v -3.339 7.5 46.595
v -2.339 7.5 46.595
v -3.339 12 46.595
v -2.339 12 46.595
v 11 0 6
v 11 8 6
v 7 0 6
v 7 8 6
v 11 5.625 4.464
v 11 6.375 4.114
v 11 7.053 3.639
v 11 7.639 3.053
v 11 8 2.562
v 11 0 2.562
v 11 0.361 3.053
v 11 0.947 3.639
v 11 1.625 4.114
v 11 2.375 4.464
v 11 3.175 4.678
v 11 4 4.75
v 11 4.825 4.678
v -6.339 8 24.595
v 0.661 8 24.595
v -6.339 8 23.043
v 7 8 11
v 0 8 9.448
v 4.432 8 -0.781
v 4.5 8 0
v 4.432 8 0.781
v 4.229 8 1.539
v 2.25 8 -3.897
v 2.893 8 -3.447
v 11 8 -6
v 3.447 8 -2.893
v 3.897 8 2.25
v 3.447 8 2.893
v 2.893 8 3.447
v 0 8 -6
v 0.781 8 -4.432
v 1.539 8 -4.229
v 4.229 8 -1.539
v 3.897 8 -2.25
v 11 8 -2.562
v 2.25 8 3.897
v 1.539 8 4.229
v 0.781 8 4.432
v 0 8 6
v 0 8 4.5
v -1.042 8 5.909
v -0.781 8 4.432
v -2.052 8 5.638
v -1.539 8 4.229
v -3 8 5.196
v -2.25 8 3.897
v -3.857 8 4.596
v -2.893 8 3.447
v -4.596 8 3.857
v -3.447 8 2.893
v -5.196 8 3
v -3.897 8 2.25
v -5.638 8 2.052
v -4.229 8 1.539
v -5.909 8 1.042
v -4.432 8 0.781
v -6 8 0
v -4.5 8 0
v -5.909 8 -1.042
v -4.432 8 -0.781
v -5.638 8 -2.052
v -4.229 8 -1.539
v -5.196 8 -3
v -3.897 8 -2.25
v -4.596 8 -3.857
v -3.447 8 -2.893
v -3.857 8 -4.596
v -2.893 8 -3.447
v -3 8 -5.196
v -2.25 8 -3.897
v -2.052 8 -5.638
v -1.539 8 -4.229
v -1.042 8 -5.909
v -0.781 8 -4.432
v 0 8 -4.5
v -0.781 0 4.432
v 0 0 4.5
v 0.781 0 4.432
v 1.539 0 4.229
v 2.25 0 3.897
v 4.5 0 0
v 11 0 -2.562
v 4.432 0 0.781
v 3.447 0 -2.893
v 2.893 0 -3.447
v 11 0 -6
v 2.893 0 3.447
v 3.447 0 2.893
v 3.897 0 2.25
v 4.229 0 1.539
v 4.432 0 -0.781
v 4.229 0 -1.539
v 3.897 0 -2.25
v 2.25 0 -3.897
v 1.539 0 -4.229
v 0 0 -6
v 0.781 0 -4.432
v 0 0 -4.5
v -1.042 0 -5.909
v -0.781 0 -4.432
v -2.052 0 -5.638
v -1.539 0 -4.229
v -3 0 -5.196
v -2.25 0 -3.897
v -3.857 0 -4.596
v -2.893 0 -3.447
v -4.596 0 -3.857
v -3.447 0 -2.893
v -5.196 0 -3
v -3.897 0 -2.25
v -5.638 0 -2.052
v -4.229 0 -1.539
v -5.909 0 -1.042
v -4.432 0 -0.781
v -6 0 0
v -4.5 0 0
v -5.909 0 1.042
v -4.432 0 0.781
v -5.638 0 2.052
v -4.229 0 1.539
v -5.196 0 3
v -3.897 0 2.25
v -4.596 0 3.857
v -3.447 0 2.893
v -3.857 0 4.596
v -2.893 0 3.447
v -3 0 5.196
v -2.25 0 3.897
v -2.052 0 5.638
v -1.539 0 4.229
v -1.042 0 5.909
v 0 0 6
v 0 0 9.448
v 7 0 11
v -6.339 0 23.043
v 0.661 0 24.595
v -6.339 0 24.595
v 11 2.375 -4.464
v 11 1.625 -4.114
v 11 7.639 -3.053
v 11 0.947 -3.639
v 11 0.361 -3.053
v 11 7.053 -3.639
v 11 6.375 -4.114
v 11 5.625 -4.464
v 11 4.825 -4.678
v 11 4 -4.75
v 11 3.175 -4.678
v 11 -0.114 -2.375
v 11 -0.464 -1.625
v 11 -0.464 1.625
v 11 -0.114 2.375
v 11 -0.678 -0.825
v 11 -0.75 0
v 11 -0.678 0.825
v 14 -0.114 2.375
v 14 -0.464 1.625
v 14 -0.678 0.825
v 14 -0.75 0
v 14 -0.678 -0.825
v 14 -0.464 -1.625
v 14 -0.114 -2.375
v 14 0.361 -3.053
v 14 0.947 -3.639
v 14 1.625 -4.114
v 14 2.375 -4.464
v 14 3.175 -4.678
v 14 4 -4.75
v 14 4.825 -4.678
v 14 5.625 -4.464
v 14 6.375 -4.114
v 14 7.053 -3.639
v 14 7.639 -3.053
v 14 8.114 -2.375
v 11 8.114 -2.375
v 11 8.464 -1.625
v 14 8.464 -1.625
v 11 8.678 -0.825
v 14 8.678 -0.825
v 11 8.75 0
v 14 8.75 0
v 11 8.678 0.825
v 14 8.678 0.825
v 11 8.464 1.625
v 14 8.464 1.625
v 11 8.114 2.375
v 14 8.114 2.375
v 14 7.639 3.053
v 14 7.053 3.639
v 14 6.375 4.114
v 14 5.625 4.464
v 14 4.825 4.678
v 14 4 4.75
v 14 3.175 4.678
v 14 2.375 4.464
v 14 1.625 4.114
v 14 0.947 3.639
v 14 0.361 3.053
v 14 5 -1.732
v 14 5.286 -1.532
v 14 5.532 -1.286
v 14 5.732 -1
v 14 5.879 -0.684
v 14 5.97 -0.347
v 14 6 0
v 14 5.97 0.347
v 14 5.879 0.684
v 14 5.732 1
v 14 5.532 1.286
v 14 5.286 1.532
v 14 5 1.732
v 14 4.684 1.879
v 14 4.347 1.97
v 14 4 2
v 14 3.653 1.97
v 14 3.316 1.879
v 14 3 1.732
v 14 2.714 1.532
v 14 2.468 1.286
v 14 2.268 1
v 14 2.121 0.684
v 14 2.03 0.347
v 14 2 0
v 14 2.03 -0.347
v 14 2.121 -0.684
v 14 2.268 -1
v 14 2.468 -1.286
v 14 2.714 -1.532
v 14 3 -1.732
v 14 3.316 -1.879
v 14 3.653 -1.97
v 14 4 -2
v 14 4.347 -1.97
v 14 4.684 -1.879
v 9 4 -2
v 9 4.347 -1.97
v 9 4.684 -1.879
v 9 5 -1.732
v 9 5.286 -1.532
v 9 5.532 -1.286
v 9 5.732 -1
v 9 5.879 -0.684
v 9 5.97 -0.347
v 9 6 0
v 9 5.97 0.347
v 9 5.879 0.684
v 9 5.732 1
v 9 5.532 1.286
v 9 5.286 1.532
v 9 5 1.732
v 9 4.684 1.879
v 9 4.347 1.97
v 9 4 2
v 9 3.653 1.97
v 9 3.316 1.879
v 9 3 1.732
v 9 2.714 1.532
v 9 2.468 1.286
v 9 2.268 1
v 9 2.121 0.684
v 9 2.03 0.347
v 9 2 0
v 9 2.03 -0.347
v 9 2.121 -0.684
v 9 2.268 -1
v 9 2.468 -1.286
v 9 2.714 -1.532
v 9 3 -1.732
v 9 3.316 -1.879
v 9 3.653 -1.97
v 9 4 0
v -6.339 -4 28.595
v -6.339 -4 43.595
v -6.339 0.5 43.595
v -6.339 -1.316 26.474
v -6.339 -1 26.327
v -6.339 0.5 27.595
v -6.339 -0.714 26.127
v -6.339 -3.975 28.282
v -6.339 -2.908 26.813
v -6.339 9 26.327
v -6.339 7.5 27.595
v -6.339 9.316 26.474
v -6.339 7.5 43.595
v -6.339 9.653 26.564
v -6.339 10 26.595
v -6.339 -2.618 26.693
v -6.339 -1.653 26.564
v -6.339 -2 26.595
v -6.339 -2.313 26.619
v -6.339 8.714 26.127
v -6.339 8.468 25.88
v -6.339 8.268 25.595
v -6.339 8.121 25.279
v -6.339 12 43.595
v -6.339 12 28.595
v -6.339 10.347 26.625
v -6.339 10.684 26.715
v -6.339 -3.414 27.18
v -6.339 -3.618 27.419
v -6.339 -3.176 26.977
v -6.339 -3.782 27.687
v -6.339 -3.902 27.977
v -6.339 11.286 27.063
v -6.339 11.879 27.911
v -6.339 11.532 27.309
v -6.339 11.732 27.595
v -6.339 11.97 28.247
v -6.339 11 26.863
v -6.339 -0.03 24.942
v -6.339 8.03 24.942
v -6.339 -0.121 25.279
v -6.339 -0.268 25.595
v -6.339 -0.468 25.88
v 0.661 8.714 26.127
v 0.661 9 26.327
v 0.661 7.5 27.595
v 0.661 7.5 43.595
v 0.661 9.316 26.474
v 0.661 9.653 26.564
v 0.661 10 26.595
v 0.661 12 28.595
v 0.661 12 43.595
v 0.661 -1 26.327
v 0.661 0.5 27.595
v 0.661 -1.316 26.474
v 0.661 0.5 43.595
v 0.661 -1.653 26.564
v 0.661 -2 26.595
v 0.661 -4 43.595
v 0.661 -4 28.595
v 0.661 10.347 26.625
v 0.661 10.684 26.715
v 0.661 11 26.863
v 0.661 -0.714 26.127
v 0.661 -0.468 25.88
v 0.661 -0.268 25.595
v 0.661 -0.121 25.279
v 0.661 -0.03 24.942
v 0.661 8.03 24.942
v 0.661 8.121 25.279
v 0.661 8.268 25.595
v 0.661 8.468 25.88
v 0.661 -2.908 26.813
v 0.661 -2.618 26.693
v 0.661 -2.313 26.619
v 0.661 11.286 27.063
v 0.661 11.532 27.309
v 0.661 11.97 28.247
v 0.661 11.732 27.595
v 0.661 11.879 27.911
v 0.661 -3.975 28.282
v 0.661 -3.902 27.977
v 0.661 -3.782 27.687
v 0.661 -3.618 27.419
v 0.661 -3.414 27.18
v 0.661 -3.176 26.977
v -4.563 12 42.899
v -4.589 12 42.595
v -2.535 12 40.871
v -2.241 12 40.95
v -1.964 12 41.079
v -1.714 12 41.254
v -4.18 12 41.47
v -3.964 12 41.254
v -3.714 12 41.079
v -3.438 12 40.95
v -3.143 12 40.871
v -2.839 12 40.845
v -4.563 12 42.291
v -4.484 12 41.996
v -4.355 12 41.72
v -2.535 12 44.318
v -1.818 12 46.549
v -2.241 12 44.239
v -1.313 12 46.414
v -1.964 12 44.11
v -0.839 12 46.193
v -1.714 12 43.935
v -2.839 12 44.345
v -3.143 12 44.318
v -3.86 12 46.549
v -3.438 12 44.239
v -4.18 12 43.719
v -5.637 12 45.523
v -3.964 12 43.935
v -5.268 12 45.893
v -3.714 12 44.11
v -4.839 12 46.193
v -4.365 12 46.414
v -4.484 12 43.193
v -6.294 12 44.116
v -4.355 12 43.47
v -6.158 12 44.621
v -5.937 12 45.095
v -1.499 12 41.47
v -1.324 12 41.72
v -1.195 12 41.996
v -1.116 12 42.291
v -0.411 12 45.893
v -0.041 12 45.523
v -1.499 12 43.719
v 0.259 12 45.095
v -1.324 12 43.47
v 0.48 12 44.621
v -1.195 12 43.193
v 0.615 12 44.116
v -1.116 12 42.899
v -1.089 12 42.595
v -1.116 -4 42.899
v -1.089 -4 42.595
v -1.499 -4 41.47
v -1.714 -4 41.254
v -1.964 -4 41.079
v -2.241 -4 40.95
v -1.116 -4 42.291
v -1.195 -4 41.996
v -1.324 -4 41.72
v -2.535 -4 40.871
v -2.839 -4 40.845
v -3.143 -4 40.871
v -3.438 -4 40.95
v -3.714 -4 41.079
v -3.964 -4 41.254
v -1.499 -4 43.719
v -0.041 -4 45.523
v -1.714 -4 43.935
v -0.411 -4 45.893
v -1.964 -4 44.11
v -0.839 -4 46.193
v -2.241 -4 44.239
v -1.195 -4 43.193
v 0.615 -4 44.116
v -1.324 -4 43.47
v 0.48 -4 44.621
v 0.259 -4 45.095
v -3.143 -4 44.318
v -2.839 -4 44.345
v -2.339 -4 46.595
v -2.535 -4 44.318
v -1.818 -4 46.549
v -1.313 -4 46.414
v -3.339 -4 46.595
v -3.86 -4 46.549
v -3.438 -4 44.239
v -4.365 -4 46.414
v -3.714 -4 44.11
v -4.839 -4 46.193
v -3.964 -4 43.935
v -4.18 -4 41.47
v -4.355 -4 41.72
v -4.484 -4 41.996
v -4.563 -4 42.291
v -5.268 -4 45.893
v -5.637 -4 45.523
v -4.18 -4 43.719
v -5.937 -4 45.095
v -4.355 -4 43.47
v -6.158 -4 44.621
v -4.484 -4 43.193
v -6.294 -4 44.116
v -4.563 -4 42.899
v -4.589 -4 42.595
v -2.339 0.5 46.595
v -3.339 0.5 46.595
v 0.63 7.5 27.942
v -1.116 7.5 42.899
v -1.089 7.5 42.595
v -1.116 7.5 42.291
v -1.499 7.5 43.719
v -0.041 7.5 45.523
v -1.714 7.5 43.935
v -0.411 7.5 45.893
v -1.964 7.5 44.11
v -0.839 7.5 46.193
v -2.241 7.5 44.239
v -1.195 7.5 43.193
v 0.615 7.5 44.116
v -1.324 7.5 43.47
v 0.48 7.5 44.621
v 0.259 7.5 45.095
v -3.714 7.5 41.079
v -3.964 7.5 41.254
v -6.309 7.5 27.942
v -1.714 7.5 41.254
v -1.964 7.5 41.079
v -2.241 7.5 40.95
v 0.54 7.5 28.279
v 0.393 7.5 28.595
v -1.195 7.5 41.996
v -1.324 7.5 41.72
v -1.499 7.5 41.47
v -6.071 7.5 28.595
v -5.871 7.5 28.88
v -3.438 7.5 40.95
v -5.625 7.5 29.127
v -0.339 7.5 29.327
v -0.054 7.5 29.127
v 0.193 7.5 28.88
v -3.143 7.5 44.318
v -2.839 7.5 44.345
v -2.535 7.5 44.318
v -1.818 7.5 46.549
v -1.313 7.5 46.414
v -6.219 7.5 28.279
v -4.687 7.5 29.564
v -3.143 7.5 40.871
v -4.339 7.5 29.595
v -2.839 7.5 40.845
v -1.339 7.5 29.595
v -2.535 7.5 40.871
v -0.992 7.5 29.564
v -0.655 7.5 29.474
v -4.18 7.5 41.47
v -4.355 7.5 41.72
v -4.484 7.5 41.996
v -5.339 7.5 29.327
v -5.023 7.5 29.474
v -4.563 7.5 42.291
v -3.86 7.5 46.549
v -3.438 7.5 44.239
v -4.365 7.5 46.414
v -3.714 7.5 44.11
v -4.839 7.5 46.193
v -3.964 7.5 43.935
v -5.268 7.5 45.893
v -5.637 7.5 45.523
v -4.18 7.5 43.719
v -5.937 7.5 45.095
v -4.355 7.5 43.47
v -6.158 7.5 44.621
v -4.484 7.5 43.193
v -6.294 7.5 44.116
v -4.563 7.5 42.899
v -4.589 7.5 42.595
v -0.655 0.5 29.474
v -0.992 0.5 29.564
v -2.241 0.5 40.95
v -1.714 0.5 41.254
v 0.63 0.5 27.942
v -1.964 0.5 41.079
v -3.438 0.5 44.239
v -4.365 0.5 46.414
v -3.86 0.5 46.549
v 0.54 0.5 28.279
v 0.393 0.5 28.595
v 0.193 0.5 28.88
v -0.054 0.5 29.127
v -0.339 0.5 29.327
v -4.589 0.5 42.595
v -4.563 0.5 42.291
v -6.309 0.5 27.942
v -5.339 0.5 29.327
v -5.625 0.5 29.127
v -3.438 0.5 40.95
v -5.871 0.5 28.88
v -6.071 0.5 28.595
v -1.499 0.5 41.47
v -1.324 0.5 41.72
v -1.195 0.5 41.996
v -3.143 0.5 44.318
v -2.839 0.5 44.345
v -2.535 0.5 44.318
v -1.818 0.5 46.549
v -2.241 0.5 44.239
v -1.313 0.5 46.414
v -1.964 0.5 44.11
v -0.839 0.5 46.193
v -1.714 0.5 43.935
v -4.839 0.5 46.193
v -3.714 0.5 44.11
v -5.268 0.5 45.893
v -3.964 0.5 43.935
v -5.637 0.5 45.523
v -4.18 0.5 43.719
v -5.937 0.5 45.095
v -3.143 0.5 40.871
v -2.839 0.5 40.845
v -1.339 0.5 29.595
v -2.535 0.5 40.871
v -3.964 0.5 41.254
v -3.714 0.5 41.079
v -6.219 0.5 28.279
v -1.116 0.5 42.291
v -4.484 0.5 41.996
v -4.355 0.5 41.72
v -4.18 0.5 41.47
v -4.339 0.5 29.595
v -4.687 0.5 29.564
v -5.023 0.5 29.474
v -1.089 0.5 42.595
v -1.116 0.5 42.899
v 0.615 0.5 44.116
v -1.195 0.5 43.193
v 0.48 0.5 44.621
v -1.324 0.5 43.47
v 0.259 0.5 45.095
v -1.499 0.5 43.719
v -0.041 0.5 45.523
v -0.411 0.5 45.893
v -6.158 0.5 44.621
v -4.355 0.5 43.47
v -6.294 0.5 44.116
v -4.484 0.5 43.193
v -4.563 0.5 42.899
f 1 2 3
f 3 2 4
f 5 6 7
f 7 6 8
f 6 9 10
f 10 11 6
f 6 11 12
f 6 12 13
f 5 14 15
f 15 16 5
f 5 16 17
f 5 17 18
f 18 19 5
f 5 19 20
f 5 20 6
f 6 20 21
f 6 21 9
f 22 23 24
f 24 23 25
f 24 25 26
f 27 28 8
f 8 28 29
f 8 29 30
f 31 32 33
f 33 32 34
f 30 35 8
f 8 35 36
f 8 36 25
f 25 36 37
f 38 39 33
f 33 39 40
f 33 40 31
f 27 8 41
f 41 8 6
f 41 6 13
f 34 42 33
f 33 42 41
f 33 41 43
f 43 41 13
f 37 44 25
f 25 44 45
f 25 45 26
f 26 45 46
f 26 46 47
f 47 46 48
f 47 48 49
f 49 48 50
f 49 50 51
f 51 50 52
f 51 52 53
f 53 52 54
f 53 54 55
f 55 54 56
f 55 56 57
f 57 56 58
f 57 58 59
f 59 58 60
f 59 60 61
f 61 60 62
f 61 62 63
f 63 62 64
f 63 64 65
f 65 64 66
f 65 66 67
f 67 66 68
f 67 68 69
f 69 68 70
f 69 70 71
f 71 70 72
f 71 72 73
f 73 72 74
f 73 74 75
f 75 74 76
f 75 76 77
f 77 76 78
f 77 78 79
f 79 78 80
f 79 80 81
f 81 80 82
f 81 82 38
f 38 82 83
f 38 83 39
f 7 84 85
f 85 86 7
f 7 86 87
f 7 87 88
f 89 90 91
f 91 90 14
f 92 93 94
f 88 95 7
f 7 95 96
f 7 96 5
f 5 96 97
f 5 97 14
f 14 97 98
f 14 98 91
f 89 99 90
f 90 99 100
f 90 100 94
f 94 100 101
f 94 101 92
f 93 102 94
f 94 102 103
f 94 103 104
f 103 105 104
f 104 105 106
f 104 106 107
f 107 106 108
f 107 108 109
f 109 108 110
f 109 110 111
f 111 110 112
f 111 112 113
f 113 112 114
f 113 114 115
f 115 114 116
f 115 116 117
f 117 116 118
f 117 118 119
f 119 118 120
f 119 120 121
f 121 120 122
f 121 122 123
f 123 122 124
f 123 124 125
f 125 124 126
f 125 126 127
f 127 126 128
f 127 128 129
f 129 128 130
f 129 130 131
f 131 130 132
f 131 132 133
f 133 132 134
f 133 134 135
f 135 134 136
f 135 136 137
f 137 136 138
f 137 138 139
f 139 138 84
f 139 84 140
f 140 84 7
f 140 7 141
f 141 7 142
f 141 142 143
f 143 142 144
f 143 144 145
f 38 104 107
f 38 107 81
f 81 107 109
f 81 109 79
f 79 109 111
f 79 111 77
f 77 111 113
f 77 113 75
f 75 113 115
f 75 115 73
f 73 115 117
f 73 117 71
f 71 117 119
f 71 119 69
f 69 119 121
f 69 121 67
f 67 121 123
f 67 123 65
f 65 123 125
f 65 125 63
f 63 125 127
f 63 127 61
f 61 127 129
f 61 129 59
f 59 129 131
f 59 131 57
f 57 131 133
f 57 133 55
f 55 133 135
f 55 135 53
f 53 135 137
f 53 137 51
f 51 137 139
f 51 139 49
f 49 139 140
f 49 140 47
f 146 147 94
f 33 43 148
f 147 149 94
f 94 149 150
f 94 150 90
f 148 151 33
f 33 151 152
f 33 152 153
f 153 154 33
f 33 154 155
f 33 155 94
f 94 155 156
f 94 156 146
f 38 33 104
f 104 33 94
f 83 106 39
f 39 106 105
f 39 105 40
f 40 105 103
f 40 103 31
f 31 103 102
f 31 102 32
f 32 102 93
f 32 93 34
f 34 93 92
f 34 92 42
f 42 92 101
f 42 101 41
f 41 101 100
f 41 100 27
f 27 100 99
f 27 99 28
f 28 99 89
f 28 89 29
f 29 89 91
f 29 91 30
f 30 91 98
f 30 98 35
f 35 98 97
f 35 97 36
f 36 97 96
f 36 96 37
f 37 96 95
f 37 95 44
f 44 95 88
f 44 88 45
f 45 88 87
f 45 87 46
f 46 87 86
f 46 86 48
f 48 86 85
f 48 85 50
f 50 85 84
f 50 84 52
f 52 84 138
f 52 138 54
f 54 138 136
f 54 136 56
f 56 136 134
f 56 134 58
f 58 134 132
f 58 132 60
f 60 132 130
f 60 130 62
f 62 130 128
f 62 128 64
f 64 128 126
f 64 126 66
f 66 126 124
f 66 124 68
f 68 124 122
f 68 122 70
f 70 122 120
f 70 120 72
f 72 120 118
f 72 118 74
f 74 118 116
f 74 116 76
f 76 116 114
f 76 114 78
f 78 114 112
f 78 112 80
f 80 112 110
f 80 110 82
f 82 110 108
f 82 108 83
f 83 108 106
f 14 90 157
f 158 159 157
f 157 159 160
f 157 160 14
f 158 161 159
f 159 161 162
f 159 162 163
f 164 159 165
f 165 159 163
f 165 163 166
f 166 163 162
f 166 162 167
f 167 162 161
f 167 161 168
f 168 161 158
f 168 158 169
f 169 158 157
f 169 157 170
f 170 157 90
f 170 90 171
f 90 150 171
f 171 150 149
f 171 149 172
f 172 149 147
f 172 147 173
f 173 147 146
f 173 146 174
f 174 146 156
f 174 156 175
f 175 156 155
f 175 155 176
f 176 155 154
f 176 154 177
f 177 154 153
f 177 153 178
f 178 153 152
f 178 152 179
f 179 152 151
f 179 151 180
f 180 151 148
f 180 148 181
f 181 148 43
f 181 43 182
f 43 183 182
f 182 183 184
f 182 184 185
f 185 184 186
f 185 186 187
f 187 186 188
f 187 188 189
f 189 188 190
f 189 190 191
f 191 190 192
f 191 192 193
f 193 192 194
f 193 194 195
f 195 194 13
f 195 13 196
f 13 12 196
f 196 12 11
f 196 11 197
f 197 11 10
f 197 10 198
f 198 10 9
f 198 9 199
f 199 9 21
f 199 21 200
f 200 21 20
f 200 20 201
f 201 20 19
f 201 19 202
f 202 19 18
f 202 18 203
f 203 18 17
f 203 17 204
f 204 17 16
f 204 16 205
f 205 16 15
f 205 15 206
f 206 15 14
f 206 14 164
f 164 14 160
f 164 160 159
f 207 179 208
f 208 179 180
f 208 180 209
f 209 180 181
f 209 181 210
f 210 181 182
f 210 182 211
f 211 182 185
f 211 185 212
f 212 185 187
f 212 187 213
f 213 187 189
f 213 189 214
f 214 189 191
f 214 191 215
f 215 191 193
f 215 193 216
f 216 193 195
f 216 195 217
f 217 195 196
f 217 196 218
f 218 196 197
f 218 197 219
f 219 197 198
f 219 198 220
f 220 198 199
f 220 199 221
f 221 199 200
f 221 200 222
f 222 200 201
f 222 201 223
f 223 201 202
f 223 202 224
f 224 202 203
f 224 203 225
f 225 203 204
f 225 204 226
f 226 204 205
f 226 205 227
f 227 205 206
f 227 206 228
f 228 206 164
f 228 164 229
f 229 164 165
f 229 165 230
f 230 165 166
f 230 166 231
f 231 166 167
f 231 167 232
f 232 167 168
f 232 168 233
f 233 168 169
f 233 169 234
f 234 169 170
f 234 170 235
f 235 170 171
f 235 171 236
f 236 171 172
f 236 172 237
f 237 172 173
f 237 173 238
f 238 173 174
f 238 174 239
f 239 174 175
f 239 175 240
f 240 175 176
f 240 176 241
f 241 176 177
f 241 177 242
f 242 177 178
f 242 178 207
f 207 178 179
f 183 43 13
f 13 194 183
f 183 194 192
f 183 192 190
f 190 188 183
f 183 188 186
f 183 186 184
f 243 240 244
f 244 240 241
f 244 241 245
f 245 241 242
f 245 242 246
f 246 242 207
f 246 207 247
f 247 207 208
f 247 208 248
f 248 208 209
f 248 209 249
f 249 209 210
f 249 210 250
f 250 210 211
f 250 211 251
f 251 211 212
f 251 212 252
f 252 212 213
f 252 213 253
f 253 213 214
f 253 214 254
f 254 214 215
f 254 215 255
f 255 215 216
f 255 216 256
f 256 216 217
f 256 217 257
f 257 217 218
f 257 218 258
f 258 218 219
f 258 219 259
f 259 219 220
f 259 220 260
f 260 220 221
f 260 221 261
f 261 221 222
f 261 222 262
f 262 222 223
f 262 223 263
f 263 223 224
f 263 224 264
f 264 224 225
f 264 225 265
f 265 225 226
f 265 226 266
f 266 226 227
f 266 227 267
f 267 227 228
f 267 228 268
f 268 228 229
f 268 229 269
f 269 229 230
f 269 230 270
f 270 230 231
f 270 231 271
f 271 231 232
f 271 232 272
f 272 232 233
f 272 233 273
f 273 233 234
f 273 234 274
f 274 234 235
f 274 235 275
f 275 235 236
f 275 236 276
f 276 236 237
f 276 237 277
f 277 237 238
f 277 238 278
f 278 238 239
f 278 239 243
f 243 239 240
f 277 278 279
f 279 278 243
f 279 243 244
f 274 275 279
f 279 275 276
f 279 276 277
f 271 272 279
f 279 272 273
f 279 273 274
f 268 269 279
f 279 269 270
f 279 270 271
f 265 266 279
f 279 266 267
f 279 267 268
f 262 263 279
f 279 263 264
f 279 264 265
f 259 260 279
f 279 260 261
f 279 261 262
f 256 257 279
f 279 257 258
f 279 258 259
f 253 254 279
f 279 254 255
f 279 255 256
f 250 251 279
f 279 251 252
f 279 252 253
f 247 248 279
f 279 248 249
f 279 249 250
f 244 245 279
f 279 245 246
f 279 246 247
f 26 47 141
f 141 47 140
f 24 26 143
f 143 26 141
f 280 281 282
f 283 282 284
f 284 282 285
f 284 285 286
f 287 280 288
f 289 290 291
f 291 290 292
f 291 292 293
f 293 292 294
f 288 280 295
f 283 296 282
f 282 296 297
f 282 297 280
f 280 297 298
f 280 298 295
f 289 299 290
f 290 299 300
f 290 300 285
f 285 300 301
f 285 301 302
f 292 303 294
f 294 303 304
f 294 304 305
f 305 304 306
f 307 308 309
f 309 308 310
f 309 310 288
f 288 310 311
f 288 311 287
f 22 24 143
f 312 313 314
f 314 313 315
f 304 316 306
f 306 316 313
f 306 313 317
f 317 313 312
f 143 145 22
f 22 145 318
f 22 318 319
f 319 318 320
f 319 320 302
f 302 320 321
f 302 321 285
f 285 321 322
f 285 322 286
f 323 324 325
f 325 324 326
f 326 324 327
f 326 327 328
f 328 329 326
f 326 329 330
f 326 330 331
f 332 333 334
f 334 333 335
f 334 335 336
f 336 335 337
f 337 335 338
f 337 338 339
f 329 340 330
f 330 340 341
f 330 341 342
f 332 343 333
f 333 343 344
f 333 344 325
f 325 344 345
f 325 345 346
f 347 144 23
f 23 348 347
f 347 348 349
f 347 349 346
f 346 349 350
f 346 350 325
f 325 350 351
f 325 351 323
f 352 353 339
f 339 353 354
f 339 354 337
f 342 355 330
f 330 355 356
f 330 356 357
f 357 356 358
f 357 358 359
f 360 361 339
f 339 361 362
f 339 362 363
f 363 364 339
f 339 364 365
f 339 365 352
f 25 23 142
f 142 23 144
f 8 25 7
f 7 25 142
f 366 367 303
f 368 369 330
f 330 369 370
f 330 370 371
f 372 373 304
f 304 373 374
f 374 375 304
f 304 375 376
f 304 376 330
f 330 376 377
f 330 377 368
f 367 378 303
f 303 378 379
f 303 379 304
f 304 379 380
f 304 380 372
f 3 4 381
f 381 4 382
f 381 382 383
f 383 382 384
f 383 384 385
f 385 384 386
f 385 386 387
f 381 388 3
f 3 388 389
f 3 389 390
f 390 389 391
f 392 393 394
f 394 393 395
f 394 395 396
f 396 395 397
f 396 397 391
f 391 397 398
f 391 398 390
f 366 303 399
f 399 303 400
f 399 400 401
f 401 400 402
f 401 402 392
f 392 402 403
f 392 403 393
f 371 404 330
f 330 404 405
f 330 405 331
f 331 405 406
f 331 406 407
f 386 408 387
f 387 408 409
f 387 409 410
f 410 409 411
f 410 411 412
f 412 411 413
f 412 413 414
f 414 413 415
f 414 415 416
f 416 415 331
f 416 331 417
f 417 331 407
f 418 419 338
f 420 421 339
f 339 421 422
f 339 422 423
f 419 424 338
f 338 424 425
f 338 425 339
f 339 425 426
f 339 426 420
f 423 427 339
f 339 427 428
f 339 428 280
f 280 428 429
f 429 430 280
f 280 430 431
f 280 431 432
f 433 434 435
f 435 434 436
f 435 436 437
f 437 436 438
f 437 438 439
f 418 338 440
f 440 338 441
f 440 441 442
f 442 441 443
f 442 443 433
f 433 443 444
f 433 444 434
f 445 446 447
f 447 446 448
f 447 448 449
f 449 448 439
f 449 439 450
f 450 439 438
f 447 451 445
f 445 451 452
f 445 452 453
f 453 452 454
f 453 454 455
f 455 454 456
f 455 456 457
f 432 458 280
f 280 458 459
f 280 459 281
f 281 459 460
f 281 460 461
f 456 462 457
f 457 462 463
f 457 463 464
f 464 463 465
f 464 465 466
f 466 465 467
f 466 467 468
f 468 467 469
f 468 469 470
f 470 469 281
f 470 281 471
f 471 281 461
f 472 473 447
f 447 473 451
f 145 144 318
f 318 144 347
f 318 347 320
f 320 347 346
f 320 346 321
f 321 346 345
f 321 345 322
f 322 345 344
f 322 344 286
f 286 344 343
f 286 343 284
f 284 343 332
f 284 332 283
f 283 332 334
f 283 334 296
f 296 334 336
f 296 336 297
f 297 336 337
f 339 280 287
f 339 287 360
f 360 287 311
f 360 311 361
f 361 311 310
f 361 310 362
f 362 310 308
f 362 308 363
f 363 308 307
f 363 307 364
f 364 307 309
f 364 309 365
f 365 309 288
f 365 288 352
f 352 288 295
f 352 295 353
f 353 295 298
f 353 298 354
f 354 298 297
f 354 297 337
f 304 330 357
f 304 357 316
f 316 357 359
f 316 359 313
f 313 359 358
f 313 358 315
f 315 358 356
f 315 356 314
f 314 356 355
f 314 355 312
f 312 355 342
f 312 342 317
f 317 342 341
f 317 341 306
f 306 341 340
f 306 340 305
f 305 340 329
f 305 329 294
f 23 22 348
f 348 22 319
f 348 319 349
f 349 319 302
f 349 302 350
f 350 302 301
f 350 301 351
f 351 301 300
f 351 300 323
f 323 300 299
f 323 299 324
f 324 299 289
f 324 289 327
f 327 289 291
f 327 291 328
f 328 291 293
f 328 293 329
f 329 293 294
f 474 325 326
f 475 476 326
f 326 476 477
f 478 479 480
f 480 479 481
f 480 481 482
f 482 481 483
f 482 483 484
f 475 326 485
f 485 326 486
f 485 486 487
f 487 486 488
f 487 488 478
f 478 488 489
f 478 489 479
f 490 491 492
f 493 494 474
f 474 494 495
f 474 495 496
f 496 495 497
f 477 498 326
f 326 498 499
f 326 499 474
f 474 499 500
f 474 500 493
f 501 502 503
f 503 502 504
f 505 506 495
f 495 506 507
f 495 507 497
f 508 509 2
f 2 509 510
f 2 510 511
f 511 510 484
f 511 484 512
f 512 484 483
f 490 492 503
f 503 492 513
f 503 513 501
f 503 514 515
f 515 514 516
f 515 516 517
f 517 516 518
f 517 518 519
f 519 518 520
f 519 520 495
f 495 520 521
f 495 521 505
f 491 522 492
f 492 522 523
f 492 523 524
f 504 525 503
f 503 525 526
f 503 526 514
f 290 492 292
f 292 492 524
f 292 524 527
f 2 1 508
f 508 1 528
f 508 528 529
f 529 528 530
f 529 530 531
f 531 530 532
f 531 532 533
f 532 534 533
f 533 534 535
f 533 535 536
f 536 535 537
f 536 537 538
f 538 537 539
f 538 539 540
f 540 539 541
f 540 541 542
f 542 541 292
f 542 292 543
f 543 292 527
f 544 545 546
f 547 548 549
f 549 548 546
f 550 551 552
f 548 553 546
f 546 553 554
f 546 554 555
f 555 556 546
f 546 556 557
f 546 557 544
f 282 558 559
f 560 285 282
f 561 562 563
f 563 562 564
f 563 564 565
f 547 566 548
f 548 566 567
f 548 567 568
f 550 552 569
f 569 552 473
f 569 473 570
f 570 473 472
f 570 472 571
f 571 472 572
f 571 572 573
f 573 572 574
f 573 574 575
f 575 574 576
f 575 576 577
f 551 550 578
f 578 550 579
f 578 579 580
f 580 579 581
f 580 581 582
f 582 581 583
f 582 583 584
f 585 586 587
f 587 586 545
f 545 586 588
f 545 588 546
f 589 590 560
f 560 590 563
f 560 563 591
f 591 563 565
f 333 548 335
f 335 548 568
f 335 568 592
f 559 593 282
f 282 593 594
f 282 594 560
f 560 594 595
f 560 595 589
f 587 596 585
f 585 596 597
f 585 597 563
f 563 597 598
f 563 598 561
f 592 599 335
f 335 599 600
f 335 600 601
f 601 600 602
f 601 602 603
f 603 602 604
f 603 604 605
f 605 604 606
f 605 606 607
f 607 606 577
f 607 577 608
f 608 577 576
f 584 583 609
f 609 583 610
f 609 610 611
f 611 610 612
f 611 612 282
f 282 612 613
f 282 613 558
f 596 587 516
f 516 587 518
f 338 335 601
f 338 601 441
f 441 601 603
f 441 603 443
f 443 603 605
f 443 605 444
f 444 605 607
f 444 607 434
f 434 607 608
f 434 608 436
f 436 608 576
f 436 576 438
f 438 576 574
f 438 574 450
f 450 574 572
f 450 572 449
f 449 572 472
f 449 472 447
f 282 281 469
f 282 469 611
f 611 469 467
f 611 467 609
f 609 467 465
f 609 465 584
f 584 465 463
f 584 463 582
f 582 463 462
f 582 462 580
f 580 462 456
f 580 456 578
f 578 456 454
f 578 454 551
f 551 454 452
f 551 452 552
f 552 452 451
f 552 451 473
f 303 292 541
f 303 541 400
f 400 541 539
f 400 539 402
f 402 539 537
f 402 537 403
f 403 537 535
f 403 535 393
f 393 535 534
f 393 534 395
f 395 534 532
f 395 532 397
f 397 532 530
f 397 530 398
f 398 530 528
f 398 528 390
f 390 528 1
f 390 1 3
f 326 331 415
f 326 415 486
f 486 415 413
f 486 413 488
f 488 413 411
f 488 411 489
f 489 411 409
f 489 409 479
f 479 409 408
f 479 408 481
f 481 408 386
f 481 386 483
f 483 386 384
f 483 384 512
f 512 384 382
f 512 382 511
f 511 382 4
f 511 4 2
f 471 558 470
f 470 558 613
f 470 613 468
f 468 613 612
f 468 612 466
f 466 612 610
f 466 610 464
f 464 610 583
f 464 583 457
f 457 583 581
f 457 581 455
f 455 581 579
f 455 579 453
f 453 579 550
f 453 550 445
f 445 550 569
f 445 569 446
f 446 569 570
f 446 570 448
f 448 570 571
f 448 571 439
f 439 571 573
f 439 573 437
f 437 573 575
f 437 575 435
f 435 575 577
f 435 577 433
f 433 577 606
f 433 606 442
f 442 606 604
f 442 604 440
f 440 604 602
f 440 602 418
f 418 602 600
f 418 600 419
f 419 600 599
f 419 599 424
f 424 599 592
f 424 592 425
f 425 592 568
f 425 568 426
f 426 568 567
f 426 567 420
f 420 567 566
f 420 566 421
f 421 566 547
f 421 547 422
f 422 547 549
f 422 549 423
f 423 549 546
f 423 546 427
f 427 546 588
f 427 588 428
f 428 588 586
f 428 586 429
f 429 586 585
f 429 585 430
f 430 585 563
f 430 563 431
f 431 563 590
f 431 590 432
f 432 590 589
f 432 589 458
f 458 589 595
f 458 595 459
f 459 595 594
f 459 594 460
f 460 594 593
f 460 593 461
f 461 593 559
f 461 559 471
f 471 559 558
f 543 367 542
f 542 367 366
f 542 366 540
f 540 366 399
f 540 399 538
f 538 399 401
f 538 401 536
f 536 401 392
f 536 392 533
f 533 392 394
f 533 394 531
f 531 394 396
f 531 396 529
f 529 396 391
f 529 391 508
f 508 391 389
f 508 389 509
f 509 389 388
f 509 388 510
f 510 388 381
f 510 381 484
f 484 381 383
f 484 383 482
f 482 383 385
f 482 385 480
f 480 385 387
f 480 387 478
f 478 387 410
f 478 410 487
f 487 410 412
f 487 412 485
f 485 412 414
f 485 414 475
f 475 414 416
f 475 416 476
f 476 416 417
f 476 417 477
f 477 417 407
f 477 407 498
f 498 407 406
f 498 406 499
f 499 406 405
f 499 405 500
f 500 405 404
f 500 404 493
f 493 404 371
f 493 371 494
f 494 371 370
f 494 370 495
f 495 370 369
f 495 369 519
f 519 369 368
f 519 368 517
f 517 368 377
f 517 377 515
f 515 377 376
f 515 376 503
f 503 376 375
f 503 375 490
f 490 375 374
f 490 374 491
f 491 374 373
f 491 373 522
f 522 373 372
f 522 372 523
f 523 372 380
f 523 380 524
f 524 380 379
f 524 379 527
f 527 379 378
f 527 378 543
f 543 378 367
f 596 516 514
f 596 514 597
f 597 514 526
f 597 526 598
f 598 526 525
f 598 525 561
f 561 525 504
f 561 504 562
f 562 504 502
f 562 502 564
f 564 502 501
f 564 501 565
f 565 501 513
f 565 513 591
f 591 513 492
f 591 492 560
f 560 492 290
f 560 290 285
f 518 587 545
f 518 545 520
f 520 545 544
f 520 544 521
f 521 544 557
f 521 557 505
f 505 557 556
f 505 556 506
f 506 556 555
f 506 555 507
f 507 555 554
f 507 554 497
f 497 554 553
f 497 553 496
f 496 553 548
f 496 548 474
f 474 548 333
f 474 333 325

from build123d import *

# Parameters (mm, degrees)
SKETCH1_R           = 4.5
BOSS_EXTRUDE1_DEPTH = 8
SKETCH2_R           = 4.75
BOSS_EXTRUDE2_DEPTH = 3
SKETCH3_R           = 2
CUT_EXTRUDE1_DEPTH  = 5
BOSS_EXTRUDE3_DEPTH = 8
SKETCH5_W           = 7
SKETCH5_H           = 16
BOSS_EXTRUDE4_DEPTH = 20
FILLET1_START       = -7
FILLET1_DEPTH       = 18
FILLET1_START_2     = -6.339273926
FILLET1_2_DEPTH     = 7
SKETCH6_W           = 7
SKETCH6_H           = 7
CUT_EXTRUDE2_DEPTH  = 17
FILLET2_R           = 3
SKETCH7_R           = 1.75
CUT_EXTRUDE3_DEPTH  = 52.215801422
FILLET3_R           = 2


with BuildPart() as part:
    # Sketch1 → Boss-Extrude1 (new body)
    with BuildSketch(Plane(origin=(0, 0, 0), x_dir=(1, 0, 0), z_dir=(0, 1, 0))):
        with BuildLine():
            Line((0, 6), (11, 6))
            Line((11, 6), (11, -6))
            Line((11, -6), (0, -6))
            ThreePointArc((0, -6), (-6, 0), (0, 6))
        make_face()
        with Locations(Location((0, 0, 0), (0, 0, 270))):
            Circle(SKETCH1_R, mode=Mode.SUBTRACT)
    extrude(amount=BOSS_EXTRUDE1_DEPTH)

    # Sketch2 → Boss-Extrude2 (add)
    with BuildSketch(Plane(origin=(11, 0, 0), x_dir=(0, 0, -1), z_dir=(1, 0, 0))):
        with Locations(Location((0, 4, 0), (0, 0, 122.636897504))):
            Circle(SKETCH2_R)
    extrude(amount=BOSS_EXTRUDE2_DEPTH)

    # Sketch3 → Cut-Extrude1 (cut)
    with BuildSketch(Plane(origin=(14, 0, 0), x_dir=(0, 0, -1), z_dir=(1, 0, 0))):
        with Locations((0, 4)):
            Circle(SKETCH3_R)
    extrude(amount=-CUT_EXTRUDE1_DEPTH, mode=Mode.SUBTRACT)

    # Sketch4 → Boss-Extrude3 (add)
    with BuildSketch(Plane(origin=(0, 0, 0), x_dir=(1, 0, 0), z_dir=(0, 1, 0))):
        Polygon((0, -6), (0, -9.448137361), (-6.339273926, -23.042754167), (-6.339273926, -26.594616806), (0.660726074, -26.594616806), (0.660726074, -24.594616806), (7, -11), (7, -6), align=None)
    extrude(amount=BOSS_EXTRUDE3_DEPTH)

    # Sketch5 → Boss-Extrude4 (add)
    with BuildSketch(Plane.XY.offset(26.594616806)):
        with Locations((-2.839273926, 4)):
            Rectangle(SKETCH5_W, SKETCH5_H)
    extrude(amount=BOSS_EXTRUDE4_DEPTH)

    # Fillet1: read off the stored shape, not the designer's step
    # Fillet1 outline → Fillet1 (cut)
    with BuildSketch(Plane.YZ.offset(FILLET1_START)):
        with BuildLine():
            Line((-4, 26.594616806), (-2, 26.594616806))
            ThreePointArc((-2, 26.594616806), (-3.414213563, 27.180403244), (-4, 28.594616806))
            Line((-4, 28.594616806), (-4, 26.594616806))
        make_face()
        with BuildLine():
            ThreePointArc((12, 28.594616806), (11.414213563, 27.180403244), (10, 26.594616806))
            Line((10, 26.594616806), (12, 26.594616806))
            Line((12, 26.594616806), (12, 28.594616806))
        make_face()
    extrude(amount=FILLET1_DEPTH, mode=Mode.SUBTRACT)

    # Fillet1 2 outline → Fillet1 2 (add)
    with BuildSketch(Plane.YZ.offset(FILLET1_START_2)):
        with BuildLine():
            ThreePointArc((-2, 26.594616806), (-0.585786438, 26.008830368), (0, 24.594616806))
            Line((0, 24.594616806), (0, 26.594616806))
            Line((0, 26.594616806), (-2, 26.594616806))
        make_face()
        with BuildLine():
            ThreePointArc((8, 24.594616806), (8.585786438, 26.008830368), (10, 26.594616806))
            Line((10, 26.594616806), (8, 26.594616806))
            Line((8, 26.594616806), (8, 24.594616806))
        make_face()
    extrude(amount=FILLET1_2_DEPTH)

    # Sketch6 → Cut-Extrude2 (cut)
    with BuildSketch(Plane.XY.offset(46.594616806)):
        with Locations((-2.839273926, 4)):
            Rectangle(SKETCH6_W, SKETCH6_H)
    extrude(amount=-CUT_EXTRUDE2_DEPTH, mode=Mode.SUBTRACT)

    # Fillet2
    fillet2_edges = [part.edges().sort_by_distance(p)[0] for p in [
        (0.660726074, -1.75, 46.594616806),
        (-6.339273926, 9.75, 46.594616806),
        (0.660726074, 9.75, 46.594616806),
        (-6.339273926, -1.75, 46.594616806),
    ]]
    fillet(fillet2_edges, radius=FILLET2_R)

    # Sketch7 → Cut-Extrude3 (cut, through all)
    with BuildSketch(Plane(origin=(0, 12, 0), x_dir=(1, 0, 0), z_dir=(0, 1, 0))):
        with Locations(Location((-2.839273926, -42.594616806, 0), (0, 0, 180))):
            Circle(SKETCH7_R)
    extrude(amount=-CUT_EXTRUDE3_DEPTH, mode=Mode.SUBTRACT)

    # Fillet3
    fillet3_edges = [part.edges().sort_by_distance(p)[0] for p in [
        (-6.339273926, 4, 29.594616806),
        (0.660726074, 4, 29.594616806),
    ]]
    fillet(fillet3_edges, radius=FILLET3_R)


solid = part.part
